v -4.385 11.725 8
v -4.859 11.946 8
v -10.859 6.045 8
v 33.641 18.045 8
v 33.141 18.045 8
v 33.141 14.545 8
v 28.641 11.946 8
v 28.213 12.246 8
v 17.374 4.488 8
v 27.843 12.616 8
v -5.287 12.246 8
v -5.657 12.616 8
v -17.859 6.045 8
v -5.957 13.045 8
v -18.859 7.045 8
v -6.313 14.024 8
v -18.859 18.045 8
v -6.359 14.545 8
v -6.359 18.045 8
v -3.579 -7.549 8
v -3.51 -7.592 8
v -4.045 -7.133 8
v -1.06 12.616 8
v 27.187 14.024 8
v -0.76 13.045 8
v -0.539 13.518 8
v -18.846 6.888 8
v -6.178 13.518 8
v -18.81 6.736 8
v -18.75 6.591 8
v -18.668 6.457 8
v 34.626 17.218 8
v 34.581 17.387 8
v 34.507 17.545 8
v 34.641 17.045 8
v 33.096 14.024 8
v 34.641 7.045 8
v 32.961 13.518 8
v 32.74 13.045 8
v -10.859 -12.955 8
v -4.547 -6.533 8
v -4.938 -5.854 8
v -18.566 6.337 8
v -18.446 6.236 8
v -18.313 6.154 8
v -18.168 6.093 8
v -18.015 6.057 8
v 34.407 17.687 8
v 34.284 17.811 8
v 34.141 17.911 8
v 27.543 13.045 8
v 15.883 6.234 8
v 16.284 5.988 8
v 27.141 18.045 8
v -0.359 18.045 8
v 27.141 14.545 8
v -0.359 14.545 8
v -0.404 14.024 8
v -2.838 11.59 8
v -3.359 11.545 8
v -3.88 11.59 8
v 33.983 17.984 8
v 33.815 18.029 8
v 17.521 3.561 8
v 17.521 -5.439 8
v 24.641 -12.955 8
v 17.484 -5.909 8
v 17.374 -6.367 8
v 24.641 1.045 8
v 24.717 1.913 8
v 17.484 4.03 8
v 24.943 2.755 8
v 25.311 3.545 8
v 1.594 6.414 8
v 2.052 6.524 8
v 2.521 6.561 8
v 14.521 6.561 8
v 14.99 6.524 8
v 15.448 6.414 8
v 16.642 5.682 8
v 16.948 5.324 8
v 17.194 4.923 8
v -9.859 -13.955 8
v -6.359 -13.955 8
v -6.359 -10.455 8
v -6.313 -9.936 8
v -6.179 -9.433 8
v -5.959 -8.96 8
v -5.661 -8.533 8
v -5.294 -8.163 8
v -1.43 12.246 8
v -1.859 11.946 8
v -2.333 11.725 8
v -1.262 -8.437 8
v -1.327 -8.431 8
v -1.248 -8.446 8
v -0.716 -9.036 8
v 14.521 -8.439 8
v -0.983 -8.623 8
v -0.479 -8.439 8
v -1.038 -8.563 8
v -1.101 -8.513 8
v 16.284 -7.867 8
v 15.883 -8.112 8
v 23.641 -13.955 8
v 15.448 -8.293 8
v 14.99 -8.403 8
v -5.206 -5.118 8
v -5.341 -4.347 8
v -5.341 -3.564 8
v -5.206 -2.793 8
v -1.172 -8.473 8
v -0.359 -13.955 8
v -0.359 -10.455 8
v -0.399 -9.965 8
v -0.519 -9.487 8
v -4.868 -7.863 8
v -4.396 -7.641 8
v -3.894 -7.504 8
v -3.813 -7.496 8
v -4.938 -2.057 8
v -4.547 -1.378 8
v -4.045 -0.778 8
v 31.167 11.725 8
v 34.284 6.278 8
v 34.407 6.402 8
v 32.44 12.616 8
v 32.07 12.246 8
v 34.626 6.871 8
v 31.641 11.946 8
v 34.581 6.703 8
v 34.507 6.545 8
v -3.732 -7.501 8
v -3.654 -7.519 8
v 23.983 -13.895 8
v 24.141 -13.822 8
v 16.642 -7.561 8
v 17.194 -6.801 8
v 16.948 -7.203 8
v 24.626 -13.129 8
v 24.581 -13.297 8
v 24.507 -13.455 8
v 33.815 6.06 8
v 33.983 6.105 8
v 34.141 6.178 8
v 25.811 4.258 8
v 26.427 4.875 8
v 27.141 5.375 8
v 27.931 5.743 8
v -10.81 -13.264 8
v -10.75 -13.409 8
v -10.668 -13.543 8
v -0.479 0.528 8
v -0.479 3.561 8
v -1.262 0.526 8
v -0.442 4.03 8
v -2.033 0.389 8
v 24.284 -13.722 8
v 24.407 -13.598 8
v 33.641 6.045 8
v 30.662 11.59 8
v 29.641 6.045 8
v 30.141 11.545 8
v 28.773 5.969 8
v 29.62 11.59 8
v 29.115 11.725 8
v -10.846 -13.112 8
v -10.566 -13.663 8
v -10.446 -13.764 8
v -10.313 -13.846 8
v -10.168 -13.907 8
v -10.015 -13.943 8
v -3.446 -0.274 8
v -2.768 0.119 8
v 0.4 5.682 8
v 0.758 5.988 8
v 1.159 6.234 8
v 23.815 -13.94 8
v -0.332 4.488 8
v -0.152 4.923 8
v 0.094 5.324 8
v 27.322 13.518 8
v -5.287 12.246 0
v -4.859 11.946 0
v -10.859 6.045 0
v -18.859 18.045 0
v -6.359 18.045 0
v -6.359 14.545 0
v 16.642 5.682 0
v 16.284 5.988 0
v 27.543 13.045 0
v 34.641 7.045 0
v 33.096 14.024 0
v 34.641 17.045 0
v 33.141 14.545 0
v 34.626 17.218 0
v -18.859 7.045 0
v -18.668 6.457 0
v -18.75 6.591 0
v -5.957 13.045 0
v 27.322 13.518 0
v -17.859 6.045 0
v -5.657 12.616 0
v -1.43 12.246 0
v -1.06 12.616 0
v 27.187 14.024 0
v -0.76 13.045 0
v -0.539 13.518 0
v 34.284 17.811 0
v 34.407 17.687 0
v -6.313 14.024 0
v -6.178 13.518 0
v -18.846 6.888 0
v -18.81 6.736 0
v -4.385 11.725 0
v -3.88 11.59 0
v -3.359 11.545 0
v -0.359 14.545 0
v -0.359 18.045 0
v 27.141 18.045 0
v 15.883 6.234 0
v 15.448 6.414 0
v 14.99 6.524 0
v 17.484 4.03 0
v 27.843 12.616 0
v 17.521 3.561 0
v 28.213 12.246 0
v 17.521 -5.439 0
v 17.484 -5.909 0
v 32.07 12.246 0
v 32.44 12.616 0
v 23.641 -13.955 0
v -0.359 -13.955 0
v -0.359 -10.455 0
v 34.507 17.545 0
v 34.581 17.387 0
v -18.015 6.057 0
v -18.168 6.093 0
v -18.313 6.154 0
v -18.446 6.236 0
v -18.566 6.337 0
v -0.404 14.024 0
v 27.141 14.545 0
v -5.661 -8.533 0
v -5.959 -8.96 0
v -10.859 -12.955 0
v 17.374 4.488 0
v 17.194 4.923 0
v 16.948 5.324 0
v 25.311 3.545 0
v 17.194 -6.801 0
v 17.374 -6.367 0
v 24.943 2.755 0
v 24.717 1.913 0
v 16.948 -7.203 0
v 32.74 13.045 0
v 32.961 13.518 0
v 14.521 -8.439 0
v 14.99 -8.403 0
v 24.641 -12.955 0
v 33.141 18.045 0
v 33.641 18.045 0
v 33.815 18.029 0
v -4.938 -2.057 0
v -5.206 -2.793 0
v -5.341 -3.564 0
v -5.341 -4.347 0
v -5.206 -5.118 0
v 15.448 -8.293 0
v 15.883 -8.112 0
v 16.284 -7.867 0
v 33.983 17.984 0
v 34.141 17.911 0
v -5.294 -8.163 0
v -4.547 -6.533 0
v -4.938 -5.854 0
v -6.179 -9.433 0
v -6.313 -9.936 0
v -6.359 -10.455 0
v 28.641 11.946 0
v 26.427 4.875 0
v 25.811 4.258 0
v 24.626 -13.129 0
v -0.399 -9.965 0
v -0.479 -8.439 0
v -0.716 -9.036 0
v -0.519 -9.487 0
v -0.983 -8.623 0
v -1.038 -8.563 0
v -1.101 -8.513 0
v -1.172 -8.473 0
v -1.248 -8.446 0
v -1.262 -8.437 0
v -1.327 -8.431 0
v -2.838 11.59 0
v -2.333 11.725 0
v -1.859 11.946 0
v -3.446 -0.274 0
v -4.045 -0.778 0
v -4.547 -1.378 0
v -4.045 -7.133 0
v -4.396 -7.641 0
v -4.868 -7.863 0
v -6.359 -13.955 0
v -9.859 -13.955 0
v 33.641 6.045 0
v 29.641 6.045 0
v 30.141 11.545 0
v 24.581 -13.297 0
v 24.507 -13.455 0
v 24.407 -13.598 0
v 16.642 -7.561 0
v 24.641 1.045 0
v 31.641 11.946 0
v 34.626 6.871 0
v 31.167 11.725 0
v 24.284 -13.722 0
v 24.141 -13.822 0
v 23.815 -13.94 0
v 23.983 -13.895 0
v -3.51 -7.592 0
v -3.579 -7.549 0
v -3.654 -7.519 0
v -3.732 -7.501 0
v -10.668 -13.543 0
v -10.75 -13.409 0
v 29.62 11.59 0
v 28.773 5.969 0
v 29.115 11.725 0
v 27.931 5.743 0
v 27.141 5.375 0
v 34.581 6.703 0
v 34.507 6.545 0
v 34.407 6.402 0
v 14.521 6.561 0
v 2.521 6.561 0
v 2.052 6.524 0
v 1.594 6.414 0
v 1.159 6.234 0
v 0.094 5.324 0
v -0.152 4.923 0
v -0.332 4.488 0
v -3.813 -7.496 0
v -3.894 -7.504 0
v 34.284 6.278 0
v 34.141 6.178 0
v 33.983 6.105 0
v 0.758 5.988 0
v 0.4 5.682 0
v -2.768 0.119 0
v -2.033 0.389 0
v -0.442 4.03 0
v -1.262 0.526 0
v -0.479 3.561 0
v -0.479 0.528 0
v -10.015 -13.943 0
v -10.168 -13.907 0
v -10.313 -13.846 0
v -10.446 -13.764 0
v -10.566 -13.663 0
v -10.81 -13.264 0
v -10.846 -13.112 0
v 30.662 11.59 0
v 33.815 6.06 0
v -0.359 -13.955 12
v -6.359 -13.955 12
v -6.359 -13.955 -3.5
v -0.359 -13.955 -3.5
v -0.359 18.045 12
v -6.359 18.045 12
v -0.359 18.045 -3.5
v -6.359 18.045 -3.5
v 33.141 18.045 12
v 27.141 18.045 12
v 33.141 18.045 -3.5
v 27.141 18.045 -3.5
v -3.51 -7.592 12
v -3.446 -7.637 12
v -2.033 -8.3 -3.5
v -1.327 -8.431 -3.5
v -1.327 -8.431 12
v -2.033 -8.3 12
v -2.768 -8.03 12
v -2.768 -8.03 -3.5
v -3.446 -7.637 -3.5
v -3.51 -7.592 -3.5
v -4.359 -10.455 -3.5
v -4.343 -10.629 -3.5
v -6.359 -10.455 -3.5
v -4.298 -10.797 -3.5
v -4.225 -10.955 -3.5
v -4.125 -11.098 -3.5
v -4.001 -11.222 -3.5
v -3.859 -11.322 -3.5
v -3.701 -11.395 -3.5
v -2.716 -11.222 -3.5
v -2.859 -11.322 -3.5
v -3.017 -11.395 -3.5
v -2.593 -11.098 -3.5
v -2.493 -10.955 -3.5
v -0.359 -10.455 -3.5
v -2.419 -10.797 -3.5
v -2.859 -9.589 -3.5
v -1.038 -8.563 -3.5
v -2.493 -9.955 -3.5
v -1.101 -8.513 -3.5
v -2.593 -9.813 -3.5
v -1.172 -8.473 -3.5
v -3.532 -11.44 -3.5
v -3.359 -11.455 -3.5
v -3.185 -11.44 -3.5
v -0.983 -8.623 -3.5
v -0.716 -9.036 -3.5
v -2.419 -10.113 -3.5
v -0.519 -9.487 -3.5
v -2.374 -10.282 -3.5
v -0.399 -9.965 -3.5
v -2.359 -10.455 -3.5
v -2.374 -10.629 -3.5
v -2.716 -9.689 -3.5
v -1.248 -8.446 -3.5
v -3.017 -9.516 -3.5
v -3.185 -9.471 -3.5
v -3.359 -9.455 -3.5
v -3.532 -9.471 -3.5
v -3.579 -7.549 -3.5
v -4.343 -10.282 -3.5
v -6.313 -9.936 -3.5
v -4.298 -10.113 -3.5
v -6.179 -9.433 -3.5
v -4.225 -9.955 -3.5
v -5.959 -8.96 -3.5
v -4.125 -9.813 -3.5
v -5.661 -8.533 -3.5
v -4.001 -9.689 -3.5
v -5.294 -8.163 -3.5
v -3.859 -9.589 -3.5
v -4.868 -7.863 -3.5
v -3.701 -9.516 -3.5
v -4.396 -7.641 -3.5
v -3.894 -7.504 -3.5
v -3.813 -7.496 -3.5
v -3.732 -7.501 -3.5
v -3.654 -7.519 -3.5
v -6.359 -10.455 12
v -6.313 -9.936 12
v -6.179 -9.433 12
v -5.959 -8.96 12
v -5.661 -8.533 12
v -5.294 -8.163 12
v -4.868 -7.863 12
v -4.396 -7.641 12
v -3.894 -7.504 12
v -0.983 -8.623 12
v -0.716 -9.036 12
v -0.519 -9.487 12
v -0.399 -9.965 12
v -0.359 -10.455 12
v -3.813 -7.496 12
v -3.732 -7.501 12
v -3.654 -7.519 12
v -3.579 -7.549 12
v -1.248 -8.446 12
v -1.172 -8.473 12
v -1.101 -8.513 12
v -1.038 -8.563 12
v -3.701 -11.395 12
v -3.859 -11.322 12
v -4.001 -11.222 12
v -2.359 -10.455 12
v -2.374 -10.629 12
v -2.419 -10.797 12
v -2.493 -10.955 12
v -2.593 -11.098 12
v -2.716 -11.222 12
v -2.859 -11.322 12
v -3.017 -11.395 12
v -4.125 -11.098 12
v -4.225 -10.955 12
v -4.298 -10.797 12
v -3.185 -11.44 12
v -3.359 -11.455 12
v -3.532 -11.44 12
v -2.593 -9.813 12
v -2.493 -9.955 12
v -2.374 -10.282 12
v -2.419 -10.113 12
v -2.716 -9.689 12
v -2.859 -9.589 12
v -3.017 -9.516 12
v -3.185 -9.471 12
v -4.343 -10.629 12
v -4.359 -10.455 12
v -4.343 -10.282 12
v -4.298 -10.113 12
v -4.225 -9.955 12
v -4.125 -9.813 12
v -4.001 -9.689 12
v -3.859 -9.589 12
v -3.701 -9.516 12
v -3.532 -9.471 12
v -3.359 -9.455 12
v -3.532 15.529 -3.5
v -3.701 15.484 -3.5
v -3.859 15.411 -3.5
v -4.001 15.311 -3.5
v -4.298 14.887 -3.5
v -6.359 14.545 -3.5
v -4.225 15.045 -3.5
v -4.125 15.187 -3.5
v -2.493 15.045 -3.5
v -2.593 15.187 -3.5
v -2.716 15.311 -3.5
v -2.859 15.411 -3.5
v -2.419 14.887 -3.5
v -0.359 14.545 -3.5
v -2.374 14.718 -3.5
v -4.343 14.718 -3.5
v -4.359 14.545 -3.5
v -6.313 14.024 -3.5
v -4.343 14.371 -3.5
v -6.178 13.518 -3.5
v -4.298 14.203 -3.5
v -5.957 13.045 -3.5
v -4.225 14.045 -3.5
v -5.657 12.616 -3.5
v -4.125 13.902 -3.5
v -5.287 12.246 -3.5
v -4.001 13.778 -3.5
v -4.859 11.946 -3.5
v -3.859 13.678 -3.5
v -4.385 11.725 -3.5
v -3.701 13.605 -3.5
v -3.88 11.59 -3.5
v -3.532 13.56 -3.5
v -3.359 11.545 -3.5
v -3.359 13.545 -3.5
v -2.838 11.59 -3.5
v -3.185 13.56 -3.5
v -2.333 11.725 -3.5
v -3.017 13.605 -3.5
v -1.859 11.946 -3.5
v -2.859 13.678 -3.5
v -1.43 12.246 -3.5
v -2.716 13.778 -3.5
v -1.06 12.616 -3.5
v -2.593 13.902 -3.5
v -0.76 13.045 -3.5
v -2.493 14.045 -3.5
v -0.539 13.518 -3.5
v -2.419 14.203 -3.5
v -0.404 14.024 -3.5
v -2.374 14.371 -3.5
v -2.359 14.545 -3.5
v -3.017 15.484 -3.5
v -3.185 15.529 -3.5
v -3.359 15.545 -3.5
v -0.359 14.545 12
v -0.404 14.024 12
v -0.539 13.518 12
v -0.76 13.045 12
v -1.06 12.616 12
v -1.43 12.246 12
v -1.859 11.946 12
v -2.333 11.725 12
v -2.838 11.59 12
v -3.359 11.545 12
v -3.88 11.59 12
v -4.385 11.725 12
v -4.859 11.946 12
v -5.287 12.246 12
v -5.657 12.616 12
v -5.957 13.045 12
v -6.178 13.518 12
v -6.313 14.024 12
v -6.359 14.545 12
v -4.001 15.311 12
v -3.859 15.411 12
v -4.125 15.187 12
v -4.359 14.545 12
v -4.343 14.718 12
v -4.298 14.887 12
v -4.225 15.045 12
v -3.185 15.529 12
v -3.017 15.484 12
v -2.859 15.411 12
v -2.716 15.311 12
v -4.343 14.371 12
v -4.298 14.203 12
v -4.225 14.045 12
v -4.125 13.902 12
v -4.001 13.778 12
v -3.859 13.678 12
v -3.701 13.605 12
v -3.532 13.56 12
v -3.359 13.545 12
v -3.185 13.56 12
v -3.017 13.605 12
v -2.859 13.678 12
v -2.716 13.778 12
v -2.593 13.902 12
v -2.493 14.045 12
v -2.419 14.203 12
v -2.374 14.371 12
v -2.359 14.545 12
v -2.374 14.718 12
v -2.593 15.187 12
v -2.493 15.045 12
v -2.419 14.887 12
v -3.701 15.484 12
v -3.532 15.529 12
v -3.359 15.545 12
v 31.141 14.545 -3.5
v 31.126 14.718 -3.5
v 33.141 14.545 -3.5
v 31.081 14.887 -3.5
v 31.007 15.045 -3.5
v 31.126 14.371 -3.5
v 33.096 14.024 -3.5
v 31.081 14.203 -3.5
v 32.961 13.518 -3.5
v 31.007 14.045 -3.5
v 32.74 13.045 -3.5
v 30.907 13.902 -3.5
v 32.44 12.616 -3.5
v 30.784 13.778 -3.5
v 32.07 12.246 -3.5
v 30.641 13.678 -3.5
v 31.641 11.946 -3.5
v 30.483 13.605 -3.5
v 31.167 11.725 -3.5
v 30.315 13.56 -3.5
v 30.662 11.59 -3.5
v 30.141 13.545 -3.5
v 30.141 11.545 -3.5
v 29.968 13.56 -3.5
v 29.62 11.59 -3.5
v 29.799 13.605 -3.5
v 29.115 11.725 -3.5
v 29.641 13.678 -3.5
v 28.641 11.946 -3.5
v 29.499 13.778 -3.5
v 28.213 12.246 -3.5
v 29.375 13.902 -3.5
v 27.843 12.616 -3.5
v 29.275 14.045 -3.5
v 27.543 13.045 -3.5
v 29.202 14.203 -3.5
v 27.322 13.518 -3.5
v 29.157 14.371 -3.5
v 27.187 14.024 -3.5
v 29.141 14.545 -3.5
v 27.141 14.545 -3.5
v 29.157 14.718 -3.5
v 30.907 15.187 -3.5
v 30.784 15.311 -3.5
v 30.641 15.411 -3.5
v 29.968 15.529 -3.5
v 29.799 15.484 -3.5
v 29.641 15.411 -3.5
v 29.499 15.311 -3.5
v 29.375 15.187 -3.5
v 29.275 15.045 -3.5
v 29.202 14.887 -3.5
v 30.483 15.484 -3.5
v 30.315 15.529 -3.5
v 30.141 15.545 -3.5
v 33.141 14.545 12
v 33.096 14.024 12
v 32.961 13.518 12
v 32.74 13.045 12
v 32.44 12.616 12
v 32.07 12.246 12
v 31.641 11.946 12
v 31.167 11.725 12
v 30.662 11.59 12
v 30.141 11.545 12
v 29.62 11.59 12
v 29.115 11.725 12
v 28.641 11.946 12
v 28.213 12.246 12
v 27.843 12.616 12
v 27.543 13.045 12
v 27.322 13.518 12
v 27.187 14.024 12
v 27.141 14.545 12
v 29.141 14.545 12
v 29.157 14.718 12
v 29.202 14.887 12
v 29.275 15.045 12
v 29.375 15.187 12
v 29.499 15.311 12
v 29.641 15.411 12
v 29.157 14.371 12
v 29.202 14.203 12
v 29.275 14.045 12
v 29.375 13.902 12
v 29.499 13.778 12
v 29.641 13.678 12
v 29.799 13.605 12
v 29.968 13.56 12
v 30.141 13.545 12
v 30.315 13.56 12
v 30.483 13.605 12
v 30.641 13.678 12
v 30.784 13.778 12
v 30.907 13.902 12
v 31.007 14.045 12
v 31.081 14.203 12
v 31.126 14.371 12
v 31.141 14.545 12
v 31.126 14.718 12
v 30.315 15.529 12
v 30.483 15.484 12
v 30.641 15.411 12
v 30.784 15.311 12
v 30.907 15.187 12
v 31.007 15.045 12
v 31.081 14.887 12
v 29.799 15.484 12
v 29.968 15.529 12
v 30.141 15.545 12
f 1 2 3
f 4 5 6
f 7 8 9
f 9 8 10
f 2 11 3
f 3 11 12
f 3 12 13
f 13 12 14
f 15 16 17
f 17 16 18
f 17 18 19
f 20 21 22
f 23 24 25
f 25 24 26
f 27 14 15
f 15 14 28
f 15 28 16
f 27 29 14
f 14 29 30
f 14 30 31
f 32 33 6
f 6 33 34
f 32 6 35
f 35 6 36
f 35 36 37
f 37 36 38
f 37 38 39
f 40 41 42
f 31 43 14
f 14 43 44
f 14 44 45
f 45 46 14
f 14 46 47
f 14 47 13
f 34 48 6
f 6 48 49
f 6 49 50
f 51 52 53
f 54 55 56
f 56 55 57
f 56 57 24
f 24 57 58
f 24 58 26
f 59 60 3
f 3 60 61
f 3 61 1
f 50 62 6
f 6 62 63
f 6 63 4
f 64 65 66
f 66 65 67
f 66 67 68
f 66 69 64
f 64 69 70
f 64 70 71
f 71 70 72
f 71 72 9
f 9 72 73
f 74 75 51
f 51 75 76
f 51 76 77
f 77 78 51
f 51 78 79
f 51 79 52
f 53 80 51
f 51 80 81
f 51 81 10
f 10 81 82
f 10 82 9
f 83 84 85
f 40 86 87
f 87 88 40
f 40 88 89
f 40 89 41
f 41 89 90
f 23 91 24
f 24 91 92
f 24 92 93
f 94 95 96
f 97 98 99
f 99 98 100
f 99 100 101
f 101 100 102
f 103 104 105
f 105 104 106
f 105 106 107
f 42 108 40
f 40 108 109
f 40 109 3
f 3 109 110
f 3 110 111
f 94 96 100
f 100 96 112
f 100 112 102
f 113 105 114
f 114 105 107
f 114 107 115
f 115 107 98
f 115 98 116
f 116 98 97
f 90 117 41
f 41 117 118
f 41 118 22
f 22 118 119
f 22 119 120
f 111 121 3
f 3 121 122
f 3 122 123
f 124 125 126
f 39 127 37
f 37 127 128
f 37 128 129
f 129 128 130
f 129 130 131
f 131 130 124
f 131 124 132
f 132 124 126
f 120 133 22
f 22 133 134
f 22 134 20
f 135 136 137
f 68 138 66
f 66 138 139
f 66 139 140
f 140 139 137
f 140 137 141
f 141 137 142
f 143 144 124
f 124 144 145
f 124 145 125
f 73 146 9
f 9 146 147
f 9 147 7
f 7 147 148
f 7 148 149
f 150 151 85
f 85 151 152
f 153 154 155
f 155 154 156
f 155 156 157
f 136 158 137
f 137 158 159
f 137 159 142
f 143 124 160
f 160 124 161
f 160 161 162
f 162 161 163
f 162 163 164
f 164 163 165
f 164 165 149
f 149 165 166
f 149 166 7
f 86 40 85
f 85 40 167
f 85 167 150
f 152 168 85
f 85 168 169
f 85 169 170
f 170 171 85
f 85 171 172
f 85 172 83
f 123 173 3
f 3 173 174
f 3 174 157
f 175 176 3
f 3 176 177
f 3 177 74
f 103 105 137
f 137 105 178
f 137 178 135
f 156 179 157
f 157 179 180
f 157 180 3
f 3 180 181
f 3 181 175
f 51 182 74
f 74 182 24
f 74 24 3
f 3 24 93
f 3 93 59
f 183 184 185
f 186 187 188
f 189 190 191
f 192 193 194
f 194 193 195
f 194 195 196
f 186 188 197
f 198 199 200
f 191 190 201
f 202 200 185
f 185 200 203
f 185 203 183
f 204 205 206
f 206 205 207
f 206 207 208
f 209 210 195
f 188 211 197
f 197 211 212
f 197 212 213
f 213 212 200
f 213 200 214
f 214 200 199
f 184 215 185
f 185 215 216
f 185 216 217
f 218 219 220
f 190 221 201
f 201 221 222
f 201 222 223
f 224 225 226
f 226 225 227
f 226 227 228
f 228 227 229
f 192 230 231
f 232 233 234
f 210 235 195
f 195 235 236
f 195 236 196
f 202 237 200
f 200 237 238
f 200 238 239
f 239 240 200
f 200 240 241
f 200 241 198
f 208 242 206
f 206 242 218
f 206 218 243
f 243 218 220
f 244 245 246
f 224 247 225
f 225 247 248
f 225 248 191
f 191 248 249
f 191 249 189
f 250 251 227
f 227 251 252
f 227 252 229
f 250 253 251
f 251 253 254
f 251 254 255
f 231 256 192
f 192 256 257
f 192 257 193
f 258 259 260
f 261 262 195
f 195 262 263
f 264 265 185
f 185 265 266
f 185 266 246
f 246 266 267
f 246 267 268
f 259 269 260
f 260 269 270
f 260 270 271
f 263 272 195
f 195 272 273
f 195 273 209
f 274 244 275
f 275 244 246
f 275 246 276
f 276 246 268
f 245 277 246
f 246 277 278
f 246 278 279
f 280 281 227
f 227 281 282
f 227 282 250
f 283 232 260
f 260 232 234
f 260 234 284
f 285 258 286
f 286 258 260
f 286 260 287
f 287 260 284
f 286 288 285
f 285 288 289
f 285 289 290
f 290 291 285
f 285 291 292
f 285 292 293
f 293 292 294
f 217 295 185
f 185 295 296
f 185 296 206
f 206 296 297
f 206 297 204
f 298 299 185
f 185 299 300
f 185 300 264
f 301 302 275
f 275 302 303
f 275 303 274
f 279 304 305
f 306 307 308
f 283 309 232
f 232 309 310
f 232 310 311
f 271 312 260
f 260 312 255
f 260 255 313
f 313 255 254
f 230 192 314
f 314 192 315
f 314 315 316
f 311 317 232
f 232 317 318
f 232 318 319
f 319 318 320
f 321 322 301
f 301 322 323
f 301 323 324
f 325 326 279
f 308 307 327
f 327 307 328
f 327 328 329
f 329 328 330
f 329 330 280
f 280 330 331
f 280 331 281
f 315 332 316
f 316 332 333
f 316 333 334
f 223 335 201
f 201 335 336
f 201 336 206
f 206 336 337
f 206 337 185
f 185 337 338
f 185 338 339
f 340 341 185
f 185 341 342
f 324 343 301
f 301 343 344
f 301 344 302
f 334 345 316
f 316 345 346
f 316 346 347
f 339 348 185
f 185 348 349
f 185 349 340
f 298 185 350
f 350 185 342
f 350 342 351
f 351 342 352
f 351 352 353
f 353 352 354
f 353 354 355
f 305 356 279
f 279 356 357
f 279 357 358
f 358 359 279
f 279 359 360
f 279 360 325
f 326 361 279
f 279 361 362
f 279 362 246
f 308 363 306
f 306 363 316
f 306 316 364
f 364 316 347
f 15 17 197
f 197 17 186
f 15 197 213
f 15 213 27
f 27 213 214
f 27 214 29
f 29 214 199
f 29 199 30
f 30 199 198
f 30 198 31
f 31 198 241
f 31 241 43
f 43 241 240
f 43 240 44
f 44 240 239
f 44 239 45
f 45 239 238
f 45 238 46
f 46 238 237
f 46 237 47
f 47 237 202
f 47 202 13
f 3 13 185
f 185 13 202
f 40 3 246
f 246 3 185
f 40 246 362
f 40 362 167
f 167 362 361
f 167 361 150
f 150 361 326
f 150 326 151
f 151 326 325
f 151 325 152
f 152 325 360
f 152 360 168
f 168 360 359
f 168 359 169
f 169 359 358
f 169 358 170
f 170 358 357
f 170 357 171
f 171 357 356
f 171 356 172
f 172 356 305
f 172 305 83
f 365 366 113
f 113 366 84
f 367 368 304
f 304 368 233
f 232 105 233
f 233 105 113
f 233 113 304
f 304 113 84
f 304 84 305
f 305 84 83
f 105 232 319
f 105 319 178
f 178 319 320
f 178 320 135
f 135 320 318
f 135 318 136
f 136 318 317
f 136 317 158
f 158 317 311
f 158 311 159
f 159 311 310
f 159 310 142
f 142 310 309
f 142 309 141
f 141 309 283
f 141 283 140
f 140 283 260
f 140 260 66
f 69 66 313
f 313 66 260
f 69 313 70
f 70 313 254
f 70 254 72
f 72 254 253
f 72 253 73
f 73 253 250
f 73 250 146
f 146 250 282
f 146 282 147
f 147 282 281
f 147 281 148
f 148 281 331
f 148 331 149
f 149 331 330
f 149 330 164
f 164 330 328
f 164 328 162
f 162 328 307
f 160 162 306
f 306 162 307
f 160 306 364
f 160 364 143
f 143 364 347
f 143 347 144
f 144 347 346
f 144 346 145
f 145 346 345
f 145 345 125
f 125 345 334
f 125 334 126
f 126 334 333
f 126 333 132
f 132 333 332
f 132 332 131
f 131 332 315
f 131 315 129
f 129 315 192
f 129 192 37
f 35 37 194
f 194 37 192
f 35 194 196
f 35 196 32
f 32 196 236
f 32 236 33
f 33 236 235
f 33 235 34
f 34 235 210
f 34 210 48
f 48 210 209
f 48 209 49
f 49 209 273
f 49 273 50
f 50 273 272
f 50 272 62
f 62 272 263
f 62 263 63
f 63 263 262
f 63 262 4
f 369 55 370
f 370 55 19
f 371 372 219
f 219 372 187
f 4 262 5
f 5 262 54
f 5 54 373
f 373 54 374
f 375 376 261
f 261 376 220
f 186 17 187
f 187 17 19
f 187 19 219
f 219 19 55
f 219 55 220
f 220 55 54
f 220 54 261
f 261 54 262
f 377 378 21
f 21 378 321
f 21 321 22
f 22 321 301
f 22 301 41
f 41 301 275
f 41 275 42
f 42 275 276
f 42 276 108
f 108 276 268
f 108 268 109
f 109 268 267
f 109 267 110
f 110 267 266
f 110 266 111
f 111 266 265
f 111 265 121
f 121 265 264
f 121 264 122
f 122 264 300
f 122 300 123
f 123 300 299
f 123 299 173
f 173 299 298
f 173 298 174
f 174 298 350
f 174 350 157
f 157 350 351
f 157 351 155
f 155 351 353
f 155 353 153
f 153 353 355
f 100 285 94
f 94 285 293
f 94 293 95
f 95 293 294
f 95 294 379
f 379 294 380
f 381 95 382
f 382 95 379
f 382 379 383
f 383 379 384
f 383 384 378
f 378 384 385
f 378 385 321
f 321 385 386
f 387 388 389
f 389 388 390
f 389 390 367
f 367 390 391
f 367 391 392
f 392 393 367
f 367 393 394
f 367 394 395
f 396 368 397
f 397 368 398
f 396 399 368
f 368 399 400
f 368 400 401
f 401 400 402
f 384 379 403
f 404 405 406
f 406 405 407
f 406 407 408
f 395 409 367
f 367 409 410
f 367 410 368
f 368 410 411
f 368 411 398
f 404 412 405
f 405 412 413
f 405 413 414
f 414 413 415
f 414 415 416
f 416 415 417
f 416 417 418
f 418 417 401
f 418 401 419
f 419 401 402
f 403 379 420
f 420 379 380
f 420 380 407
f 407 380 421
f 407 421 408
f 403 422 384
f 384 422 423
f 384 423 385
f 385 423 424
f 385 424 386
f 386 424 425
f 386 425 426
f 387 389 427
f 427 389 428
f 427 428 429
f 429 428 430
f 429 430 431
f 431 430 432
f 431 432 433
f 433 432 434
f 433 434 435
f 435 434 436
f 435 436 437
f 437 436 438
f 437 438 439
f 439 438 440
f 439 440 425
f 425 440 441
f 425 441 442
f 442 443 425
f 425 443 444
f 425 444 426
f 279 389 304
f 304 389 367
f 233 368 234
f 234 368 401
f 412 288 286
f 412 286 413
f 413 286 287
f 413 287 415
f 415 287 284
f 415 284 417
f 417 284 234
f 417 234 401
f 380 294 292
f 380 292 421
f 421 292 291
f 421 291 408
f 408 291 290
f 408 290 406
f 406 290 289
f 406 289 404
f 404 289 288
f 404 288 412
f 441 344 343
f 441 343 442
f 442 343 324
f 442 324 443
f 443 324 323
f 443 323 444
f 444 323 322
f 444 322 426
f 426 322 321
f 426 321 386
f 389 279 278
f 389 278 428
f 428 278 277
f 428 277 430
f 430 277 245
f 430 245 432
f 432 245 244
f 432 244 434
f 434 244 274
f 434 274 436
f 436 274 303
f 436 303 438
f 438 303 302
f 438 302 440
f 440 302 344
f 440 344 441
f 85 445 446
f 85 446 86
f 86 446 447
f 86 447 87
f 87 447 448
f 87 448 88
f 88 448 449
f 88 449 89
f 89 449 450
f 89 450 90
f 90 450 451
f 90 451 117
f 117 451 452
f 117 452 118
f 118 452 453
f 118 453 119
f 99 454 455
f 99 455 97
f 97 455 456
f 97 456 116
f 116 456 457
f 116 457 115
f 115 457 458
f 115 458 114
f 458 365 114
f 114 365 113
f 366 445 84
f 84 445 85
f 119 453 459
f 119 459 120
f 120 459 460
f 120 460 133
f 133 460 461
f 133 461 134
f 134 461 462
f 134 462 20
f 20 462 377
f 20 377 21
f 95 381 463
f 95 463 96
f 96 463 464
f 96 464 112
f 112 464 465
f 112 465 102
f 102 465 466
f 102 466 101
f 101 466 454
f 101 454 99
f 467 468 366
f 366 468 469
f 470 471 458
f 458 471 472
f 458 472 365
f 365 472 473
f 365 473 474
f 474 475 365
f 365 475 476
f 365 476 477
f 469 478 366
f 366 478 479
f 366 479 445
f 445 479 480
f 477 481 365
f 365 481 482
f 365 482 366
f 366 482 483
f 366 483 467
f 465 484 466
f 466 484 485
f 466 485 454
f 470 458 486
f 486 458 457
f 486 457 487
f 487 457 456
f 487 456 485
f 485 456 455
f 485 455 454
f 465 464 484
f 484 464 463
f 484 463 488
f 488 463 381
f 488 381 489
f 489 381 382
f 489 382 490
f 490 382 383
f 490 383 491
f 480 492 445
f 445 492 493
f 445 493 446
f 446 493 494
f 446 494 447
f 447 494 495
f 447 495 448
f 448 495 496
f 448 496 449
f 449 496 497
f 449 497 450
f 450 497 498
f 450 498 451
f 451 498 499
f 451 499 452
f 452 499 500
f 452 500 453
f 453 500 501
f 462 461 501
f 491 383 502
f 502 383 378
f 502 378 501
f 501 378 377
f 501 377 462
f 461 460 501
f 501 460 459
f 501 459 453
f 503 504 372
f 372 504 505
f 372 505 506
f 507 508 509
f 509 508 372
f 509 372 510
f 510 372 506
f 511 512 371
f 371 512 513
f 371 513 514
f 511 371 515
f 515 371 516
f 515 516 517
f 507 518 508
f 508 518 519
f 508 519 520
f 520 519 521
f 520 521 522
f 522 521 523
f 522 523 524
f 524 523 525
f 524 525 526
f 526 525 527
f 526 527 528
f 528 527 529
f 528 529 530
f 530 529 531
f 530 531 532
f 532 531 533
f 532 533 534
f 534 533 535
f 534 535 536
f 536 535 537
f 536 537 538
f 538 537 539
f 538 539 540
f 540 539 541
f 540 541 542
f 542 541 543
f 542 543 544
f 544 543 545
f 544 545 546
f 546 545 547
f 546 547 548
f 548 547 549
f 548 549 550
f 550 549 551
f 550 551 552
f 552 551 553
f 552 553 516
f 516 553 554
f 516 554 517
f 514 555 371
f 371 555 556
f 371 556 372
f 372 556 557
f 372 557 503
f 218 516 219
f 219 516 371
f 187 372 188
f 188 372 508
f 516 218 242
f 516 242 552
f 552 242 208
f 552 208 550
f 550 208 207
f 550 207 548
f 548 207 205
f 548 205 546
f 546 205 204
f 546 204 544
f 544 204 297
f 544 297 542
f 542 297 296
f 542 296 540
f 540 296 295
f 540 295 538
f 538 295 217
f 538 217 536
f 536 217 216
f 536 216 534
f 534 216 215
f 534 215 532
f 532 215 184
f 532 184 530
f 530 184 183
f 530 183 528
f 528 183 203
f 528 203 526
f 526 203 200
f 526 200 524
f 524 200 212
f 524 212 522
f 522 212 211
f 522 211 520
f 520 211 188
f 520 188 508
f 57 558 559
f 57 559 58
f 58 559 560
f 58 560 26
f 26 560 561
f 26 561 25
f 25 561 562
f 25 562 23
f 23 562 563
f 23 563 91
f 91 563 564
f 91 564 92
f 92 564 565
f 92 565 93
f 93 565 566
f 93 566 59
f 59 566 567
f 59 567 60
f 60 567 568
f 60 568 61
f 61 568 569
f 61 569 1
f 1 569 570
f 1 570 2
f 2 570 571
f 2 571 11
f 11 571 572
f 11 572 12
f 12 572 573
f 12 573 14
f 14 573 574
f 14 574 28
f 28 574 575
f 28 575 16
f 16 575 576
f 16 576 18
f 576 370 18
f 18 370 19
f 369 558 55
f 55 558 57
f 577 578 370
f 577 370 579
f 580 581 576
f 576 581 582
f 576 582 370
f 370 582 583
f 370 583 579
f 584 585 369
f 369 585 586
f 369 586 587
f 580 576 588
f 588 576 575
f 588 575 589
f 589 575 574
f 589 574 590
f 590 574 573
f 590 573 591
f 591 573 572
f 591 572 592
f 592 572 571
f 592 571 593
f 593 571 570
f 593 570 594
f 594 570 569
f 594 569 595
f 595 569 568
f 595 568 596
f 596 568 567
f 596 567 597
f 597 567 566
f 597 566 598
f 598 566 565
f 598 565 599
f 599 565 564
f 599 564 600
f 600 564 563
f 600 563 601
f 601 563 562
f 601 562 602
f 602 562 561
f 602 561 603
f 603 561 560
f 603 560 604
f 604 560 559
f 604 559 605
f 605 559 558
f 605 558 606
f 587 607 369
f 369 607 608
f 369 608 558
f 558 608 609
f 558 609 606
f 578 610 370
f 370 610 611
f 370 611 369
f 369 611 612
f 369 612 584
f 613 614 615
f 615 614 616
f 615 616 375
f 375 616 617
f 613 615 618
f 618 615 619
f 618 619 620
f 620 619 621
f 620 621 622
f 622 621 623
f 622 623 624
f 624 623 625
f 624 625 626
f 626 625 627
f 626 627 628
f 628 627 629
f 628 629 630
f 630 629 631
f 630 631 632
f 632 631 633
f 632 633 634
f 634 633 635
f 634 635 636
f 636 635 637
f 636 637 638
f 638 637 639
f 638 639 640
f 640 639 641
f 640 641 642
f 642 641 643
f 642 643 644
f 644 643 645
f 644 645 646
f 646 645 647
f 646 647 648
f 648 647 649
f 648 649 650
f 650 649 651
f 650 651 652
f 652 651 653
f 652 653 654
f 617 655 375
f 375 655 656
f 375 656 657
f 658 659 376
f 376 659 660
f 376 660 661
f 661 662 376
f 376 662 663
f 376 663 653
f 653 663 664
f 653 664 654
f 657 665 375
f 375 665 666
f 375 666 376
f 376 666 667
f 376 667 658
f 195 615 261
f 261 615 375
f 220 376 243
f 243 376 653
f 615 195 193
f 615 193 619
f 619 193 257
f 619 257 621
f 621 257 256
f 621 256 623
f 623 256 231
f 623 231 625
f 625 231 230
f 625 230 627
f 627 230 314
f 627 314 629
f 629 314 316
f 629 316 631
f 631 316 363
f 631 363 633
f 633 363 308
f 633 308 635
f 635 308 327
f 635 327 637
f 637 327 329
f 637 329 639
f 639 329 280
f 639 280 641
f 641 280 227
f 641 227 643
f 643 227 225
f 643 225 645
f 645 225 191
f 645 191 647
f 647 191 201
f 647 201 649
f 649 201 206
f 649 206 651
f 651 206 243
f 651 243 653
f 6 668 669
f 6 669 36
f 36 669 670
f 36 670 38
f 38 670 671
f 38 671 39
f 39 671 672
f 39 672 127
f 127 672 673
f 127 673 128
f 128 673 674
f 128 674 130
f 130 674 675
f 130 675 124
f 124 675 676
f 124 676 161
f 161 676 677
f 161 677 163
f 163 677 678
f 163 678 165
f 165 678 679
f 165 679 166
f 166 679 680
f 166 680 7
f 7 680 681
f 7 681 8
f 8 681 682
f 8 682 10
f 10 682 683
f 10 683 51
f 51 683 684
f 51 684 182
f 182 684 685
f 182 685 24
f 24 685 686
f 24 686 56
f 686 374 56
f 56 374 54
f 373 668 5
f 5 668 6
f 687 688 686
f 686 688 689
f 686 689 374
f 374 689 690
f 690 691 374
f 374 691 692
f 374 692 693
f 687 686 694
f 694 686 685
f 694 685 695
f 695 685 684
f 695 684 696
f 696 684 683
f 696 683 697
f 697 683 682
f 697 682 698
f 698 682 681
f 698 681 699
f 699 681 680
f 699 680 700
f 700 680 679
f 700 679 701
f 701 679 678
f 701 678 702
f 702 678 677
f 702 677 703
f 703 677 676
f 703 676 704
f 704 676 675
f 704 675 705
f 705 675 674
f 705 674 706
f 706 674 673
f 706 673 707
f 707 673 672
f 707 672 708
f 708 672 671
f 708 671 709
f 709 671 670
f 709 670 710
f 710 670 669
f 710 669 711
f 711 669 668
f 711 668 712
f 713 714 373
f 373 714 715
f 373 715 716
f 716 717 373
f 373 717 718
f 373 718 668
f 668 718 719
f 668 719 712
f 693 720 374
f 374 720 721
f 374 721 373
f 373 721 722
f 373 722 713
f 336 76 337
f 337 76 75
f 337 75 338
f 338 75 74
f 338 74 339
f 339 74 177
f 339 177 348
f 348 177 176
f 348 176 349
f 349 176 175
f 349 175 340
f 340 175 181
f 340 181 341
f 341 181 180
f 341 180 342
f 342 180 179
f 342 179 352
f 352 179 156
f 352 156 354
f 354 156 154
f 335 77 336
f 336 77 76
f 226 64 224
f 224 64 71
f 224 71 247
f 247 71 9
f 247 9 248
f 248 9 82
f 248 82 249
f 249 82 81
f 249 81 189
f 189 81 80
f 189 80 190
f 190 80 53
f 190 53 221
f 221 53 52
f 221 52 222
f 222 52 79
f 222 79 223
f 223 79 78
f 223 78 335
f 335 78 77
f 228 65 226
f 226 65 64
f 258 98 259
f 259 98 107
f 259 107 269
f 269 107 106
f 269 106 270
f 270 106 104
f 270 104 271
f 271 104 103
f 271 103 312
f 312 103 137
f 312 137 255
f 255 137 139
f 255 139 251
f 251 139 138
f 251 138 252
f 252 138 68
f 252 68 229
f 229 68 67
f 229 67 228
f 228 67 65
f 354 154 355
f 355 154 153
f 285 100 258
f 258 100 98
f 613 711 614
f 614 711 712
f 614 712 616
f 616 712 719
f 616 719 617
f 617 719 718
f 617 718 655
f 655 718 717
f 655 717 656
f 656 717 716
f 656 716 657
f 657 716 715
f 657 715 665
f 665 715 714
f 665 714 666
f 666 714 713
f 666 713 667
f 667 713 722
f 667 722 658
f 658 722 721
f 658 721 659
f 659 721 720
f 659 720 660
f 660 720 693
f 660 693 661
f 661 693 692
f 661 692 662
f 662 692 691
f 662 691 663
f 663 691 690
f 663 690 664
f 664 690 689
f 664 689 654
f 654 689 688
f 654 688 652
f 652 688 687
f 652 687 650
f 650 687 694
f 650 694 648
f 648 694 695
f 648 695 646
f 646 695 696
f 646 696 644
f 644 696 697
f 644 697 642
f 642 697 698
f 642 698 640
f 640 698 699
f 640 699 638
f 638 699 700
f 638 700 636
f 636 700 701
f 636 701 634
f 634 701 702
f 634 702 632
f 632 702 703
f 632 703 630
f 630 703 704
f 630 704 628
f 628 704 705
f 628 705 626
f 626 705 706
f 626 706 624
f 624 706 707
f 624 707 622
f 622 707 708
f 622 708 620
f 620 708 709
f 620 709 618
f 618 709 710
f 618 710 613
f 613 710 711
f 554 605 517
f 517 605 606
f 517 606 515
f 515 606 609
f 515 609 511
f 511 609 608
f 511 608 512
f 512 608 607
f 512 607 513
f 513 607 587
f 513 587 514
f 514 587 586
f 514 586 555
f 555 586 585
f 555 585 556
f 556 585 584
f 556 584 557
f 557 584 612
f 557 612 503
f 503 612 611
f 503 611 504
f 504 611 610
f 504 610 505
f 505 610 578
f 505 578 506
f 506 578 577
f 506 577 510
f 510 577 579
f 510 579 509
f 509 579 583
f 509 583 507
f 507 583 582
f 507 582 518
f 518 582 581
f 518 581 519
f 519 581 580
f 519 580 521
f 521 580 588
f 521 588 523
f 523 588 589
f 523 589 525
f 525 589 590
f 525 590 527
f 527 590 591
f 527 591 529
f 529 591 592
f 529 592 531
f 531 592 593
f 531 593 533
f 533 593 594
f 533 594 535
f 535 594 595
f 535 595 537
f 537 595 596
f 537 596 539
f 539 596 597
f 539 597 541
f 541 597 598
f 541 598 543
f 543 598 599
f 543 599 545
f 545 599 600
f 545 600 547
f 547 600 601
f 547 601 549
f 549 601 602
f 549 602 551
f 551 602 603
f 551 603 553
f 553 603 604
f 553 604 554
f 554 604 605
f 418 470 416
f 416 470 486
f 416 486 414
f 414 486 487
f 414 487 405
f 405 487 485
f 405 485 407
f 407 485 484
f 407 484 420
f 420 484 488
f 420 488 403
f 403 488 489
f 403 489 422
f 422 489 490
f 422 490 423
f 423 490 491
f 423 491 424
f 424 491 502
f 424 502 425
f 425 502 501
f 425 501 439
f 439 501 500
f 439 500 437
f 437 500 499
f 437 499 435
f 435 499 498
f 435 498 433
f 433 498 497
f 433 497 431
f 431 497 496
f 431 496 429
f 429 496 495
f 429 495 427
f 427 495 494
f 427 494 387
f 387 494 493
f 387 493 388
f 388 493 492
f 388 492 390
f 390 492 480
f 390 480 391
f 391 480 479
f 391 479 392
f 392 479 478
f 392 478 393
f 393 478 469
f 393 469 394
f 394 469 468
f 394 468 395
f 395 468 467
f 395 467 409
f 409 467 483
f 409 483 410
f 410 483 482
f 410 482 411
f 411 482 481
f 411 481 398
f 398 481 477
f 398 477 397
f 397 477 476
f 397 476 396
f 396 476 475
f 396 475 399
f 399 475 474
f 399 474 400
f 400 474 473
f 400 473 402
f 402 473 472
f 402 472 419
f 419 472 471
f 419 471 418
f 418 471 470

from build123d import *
from build123d.topology import SkipClean

# Parameters (mm, degrees)
SKETCH_2_R               = 4.5
EXTRUDE_1_DEPTH          = 8
EXTRUDE_2_DEPTH          = 4
EXTRUDE_2_DEPTH_BACK     = 11.5
CUT_EXTRUDE_1_DEPTH      = 41.717122437
CUT_EXTRUDE_1_DEPTH_BACK = 41.717122437
CUT_EXTRUDE_2_DEPTH      = 41.717122437
CUT_EXTRUDE_2_DEPTH_BACK = 41.717122437
SKETCH_6_R               = 1


with BuildPart() as part:
    # Эскиз2 → Бобышка-Вытянуть1 (new body)
    with BuildSketch(Plane.XY):
        with BuildLine():
            Line((-18.858561718, 18.044523082), (33.641438282, 18.044523082))
            ThreePointArc((33.641438282, 18.044523082), (34.348545063, 17.751629864), (34.641438282, 17.044523082))
            Line((34.641438282, 17.044523082), (34.641438282, 7.044523082))
            ThreePointArc((34.641438282, 7.044523082), (34.348545063, 6.337416301), (33.641438282, 6.044523082))
            Line((33.641438282, 6.044523082), (29.641438282, 6.044523082))
            ThreePointArc((29.641438282, 6.044523082), (26.105904376, 4.580056988), (24.641438282, 1.044523082))
            Line((24.641438282, 1.044523082), (24.641438282, -12.955476918))
            ThreePointArc((24.641438282, -12.955476918), (24.348545063, -13.662583699), (23.641438282, -13.955476918))
            Line((23.641438282, -13.955476918), (-9.858561718, -13.955476918))
            ThreePointArc((-9.858561718, -13.955476918), (-10.565668499, -13.662583699), (-10.858561718, -12.955476918))
            Line((-10.858561718, -12.955476918), (-10.858561718, 6.044523082))
            Line((-10.858561718, 6.044523082), (-17.858561718, 6.044523082))
            ThreePointArc((-17.858561718, 6.044523082), (-18.565668499, 6.337416301), (-18.858561718, 7.044523082))
            Line((-18.858561718, 7.044523082), (-18.858561718, 18.044523082))
        make_face()
        with Locations((-0.858561718, -3.955476918)):
            Circle(SKETCH_2_R, mode=Mode.SUBTRACT)
    extrude(amount=EXTRUDE_1_DEPTH)

    # Эскиз3 → Бобышка-Вытянуть2 (add, two sides: drawn at the far end of the back side and taken through both)
    with SkipClean():  # the faces are left unmerged after this step: merging them gives an invalid solid
        with BuildSketch(Plane.XY.offset(8).offset(-EXTRUDE_2_DEPTH_BACK)):
            with BuildLine():
                Line((27.141438282, 14.544523082), (27.141438282, 18.044523082))
                Line((27.141438282, 18.044523082), (33.141438282, 18.044523082))
                Line((33.141438282, 18.044523082), (33.141438282, 14.544523082))
                ThreePointArc((33.141438282, 14.544523082), (30.141438282, 11.544523082), (27.141438282, 14.544523082))
            make_face()
            with BuildLine():
                Line((-0.358561718, 14.544523082), (-0.358561718, 18.044523082))
                Line((-0.358561718, 18.044523082), (-6.358561718, 18.044523082))
                Line((-6.358561718, 18.044523082), (-6.358561718, 14.544523082))
                ThreePointArc((-6.358561718, 14.544523082), (-3.358561718, 11.544523082), (-0.358561718, 14.544523082))
            make_face()
            with BuildLine():
                Line((-6.358561718, -10.455476918), (-6.358561718, -13.955476918))
                Line((-6.358561718, -13.955476918), (-0.358561718, -13.955476918))
                Line((-0.358561718, -13.955476918), (-0.358561718, -10.455476918))
                ThreePointArc((-0.358561718, -10.455476918), (-0.519059003, -9.487373446), (-0.983377938, -8.622855294))
                ThreePointArc((-0.983377938, -8.622855294), (-1.135599023, -8.491670945), (-1.327173883, -8.4310107))
                ThreePointArc((-1.327173883, -8.4310107), (-2.473967575, -8.155532145), (-3.509794913, -7.591541073))
                ThreePointArc((-3.509794913, -7.591541073), (-3.692643427, -7.508192328), (-3.893539312, -7.503562458))
                ThreePointArc((-3.893539312, -7.503562458), (-5.661270208, -8.532579726), (-6.358561718, -10.455476918))
            make_face()
        extrude(amount=EXTRUDE_2_DEPTH + EXTRUDE_2_DEPTH_BACK)
    add(part.part.scale(1), mode=Mode.REPLACE)  # the faces are merged on a copy

    # Эскиз5 → Вырез-Вытянуть1 (cut, two sides: drawn at the far end of the back side and taken through both)
    with BuildSketch(Plane.XY.offset(8).offset(-CUT_EXTRUDE_1_DEPTH_BACK)):
        with BuildLine():
            Line((14.520862779, 6.560547497), (2.520862779, 6.560547497))
            ThreePointArc((2.520862779, 6.560547497), (0.399542436, 5.681867841), (-0.479137221, 3.560547497))
            Line((-0.479137221, 3.560547497), (-0.479137221, -8.439452503))
            Line((-0.479137221, -8.439452503), (14.520862779, -8.439452503))
            ThreePointArc((14.520862779, -8.439452503), (16.642183123, -7.560772847), (17.520862779, -5.439452503))
            Line((17.520862779, -5.439452503), (17.520862779, 3.560547497))
            ThreePointArc((17.520862779, 3.560547497), (16.642183123, 5.681867841), (14.520862779, 6.560547497))
        make_face()
    extrude(amount=CUT_EXTRUDE_1_DEPTH + CUT_EXTRUDE_1_DEPTH_BACK, mode=Mode.SUBTRACT)

    # Эскиз6 → Вырез-Вытянуть2 (cut, two sides: drawn at the far end of the back side and taken through both)
    with BuildSketch(Plane.XY.offset(8).offset(-CUT_EXTRUDE_2_DEPTH_BACK)):
        with Locations((-3.358561718, 14.544523082)):
            Circle(SKETCH_6_R)
        with Locations((30.141438282, 14.544523082)):
            Circle(SKETCH_6_R)
        with Locations((-3.358561718, -10.455476918)):
            Circle(SKETCH_6_R)
    extrude(amount=CUT_EXTRUDE_2_DEPTH + CUT_EXTRUDE_2_DEPTH_BACK, mode=Mode.SUBTRACT)


solid = part.part
